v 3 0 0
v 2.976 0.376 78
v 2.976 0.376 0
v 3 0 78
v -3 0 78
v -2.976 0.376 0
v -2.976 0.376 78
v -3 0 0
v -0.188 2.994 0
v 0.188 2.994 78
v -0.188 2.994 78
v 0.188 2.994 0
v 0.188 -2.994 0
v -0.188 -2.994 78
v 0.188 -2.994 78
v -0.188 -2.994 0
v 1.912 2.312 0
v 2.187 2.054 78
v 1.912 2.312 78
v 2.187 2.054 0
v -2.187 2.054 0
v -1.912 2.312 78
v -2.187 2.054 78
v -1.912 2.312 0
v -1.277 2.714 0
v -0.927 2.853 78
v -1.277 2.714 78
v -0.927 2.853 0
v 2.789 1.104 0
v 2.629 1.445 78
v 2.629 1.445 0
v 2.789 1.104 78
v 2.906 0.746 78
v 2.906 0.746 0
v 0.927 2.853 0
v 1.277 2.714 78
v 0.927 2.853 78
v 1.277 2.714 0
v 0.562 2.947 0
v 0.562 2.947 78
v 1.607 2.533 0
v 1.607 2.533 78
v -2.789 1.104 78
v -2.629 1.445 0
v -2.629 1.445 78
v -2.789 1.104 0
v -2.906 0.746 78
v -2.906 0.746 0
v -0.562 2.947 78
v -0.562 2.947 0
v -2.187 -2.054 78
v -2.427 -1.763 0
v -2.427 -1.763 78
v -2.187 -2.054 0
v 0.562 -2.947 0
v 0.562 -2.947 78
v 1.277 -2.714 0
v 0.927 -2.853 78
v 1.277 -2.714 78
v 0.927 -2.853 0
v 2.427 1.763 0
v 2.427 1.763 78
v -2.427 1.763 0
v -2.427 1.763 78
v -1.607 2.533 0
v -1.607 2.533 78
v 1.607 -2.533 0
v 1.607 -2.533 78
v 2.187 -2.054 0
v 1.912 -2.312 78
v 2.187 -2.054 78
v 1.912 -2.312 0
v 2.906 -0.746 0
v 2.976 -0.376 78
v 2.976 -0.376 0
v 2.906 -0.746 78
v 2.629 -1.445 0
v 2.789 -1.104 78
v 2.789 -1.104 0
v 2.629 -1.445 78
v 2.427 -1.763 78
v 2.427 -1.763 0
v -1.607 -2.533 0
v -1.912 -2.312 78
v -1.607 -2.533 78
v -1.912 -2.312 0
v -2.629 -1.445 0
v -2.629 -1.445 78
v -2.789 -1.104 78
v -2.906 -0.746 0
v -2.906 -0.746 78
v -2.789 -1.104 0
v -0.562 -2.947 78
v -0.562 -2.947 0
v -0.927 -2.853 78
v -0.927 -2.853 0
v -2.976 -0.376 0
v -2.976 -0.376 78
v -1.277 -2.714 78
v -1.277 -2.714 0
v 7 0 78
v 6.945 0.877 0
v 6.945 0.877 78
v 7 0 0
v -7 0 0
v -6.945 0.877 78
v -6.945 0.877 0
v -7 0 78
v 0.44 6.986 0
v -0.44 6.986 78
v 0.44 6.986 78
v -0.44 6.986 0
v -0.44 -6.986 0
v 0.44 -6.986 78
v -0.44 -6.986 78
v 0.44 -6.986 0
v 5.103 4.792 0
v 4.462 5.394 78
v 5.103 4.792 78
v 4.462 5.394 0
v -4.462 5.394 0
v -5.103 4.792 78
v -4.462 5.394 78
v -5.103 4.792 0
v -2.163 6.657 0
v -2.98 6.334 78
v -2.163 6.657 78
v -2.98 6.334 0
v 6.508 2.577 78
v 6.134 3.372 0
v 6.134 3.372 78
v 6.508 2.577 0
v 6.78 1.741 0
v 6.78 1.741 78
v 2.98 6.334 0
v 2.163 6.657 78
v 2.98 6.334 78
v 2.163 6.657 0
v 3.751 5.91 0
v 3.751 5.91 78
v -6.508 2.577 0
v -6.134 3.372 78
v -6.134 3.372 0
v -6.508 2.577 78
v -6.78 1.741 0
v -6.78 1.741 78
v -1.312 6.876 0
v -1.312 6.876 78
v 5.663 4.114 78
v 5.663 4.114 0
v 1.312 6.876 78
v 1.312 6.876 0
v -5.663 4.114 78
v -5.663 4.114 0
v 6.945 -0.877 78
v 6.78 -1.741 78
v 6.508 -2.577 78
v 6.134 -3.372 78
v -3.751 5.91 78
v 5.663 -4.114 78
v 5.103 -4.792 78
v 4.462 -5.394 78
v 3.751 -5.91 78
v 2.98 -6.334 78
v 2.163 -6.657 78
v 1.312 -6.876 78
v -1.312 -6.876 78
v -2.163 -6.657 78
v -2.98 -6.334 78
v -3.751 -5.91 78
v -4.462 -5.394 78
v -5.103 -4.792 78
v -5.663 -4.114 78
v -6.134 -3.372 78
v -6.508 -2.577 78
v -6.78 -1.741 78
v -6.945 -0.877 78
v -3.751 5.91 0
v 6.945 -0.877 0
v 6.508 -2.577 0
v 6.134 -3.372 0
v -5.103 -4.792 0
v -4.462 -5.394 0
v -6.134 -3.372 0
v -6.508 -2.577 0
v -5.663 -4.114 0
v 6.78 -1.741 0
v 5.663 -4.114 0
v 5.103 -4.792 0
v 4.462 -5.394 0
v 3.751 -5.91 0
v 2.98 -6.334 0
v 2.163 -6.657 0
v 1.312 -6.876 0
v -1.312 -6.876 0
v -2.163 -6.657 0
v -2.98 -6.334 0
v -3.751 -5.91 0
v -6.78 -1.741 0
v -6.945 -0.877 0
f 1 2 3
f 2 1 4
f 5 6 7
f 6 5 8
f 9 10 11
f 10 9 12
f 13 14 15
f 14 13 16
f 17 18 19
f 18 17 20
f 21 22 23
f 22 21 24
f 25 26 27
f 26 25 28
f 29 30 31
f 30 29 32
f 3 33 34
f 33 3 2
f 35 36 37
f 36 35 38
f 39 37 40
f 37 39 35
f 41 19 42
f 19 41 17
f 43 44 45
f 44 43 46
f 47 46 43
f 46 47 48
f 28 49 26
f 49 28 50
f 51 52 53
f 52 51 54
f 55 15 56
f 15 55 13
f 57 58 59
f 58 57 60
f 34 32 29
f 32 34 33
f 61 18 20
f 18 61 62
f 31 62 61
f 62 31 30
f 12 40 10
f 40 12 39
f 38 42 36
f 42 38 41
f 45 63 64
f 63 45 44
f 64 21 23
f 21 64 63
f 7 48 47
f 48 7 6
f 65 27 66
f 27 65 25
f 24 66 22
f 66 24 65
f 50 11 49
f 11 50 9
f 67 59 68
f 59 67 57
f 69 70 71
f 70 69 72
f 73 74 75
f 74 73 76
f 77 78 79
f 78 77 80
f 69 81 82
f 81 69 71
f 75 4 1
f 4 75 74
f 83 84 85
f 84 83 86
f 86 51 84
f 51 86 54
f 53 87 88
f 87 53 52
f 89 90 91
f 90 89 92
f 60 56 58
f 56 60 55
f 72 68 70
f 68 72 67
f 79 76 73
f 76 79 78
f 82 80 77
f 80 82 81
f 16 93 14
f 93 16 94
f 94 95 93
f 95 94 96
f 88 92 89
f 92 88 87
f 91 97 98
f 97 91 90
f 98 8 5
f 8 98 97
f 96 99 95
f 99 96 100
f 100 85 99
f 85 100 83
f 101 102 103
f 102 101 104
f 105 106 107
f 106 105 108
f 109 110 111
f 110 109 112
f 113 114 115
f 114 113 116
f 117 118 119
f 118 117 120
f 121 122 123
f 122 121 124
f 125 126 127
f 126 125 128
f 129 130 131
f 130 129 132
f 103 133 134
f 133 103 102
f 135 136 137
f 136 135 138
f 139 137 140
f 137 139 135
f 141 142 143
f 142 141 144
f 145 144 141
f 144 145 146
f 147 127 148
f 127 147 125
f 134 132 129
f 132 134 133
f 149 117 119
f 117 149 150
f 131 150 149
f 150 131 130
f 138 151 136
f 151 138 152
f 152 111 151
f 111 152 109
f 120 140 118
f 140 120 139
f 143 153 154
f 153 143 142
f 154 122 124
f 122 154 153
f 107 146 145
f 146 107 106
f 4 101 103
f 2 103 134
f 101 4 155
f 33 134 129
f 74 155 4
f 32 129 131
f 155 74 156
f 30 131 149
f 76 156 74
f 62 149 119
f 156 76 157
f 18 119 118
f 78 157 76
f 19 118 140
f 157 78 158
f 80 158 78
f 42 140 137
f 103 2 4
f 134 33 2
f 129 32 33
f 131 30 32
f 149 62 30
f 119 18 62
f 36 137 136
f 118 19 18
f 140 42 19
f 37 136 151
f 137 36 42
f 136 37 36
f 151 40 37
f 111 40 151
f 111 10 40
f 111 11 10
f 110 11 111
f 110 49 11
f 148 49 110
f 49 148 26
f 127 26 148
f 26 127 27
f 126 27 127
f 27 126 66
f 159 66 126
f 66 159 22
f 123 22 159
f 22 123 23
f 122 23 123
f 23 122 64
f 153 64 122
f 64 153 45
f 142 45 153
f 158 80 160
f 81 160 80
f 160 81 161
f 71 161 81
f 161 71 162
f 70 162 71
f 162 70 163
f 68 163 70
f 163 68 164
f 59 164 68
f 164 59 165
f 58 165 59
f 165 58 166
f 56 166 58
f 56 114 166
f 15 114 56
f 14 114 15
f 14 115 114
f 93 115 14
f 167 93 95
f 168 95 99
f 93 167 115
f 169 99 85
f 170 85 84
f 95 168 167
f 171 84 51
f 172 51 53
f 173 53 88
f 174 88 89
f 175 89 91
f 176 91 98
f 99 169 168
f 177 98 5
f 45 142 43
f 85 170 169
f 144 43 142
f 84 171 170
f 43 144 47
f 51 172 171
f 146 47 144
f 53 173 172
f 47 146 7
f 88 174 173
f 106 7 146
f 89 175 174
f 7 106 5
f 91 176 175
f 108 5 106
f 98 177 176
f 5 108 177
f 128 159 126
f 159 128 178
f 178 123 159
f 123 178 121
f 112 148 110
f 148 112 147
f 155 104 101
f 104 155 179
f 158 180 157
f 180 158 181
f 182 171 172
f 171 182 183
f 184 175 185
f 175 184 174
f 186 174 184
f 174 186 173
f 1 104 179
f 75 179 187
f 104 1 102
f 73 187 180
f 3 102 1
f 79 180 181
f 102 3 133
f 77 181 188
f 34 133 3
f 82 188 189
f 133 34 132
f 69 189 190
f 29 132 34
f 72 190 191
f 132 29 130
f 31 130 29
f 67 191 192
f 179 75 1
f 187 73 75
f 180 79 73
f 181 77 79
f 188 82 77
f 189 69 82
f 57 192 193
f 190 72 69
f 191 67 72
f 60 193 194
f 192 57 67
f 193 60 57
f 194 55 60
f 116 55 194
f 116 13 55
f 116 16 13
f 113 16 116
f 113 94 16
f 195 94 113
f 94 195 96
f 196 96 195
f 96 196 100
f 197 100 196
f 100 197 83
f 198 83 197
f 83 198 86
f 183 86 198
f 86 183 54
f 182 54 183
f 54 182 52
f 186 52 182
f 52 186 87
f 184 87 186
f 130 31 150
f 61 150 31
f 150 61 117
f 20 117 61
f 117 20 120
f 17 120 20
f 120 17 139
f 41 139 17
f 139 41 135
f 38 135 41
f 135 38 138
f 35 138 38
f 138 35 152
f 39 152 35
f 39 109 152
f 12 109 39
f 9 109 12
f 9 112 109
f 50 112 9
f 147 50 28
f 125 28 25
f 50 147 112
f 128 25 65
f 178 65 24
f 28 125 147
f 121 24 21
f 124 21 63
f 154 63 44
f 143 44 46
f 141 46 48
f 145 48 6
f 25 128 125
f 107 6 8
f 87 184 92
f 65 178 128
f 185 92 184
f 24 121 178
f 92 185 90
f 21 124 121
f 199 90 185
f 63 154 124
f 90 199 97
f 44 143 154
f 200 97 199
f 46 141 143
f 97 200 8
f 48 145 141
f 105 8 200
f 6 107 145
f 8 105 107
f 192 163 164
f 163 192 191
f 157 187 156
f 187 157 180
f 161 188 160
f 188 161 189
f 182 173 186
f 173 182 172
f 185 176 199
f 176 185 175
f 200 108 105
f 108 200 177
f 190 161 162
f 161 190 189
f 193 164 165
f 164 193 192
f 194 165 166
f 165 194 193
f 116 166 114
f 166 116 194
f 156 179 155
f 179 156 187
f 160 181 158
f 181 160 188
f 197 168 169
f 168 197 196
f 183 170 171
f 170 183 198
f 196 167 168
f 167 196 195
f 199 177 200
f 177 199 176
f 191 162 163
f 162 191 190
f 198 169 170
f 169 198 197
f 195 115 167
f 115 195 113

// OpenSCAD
$fn = 50;


difference() {
	union() {
		cylinder(h = 78, r = 7.0000000000);
	}
	union() {
		translate(v = [0.0000000000, 0.0000000000, -100.0000000000]) {
			cylinder(h = 200, r = 3.0000000000);
		}
		translate(v = [0.0000000000, 0.0000000000, -100.0000000000]) {
			cylinder(h = 200, r = 3.0000000000);
		}
		translate(v = [0.0000000000, 0.0000000000, -100.0000000000]) {
			cylinder(h = 200, r = 3.0000000000);
		}
		translate(v = [0.0000000000, 0.0000000000, -100.0000000000]) {
			cylinder(h = 200, r = 3.0000000000);
		}
	}
}
